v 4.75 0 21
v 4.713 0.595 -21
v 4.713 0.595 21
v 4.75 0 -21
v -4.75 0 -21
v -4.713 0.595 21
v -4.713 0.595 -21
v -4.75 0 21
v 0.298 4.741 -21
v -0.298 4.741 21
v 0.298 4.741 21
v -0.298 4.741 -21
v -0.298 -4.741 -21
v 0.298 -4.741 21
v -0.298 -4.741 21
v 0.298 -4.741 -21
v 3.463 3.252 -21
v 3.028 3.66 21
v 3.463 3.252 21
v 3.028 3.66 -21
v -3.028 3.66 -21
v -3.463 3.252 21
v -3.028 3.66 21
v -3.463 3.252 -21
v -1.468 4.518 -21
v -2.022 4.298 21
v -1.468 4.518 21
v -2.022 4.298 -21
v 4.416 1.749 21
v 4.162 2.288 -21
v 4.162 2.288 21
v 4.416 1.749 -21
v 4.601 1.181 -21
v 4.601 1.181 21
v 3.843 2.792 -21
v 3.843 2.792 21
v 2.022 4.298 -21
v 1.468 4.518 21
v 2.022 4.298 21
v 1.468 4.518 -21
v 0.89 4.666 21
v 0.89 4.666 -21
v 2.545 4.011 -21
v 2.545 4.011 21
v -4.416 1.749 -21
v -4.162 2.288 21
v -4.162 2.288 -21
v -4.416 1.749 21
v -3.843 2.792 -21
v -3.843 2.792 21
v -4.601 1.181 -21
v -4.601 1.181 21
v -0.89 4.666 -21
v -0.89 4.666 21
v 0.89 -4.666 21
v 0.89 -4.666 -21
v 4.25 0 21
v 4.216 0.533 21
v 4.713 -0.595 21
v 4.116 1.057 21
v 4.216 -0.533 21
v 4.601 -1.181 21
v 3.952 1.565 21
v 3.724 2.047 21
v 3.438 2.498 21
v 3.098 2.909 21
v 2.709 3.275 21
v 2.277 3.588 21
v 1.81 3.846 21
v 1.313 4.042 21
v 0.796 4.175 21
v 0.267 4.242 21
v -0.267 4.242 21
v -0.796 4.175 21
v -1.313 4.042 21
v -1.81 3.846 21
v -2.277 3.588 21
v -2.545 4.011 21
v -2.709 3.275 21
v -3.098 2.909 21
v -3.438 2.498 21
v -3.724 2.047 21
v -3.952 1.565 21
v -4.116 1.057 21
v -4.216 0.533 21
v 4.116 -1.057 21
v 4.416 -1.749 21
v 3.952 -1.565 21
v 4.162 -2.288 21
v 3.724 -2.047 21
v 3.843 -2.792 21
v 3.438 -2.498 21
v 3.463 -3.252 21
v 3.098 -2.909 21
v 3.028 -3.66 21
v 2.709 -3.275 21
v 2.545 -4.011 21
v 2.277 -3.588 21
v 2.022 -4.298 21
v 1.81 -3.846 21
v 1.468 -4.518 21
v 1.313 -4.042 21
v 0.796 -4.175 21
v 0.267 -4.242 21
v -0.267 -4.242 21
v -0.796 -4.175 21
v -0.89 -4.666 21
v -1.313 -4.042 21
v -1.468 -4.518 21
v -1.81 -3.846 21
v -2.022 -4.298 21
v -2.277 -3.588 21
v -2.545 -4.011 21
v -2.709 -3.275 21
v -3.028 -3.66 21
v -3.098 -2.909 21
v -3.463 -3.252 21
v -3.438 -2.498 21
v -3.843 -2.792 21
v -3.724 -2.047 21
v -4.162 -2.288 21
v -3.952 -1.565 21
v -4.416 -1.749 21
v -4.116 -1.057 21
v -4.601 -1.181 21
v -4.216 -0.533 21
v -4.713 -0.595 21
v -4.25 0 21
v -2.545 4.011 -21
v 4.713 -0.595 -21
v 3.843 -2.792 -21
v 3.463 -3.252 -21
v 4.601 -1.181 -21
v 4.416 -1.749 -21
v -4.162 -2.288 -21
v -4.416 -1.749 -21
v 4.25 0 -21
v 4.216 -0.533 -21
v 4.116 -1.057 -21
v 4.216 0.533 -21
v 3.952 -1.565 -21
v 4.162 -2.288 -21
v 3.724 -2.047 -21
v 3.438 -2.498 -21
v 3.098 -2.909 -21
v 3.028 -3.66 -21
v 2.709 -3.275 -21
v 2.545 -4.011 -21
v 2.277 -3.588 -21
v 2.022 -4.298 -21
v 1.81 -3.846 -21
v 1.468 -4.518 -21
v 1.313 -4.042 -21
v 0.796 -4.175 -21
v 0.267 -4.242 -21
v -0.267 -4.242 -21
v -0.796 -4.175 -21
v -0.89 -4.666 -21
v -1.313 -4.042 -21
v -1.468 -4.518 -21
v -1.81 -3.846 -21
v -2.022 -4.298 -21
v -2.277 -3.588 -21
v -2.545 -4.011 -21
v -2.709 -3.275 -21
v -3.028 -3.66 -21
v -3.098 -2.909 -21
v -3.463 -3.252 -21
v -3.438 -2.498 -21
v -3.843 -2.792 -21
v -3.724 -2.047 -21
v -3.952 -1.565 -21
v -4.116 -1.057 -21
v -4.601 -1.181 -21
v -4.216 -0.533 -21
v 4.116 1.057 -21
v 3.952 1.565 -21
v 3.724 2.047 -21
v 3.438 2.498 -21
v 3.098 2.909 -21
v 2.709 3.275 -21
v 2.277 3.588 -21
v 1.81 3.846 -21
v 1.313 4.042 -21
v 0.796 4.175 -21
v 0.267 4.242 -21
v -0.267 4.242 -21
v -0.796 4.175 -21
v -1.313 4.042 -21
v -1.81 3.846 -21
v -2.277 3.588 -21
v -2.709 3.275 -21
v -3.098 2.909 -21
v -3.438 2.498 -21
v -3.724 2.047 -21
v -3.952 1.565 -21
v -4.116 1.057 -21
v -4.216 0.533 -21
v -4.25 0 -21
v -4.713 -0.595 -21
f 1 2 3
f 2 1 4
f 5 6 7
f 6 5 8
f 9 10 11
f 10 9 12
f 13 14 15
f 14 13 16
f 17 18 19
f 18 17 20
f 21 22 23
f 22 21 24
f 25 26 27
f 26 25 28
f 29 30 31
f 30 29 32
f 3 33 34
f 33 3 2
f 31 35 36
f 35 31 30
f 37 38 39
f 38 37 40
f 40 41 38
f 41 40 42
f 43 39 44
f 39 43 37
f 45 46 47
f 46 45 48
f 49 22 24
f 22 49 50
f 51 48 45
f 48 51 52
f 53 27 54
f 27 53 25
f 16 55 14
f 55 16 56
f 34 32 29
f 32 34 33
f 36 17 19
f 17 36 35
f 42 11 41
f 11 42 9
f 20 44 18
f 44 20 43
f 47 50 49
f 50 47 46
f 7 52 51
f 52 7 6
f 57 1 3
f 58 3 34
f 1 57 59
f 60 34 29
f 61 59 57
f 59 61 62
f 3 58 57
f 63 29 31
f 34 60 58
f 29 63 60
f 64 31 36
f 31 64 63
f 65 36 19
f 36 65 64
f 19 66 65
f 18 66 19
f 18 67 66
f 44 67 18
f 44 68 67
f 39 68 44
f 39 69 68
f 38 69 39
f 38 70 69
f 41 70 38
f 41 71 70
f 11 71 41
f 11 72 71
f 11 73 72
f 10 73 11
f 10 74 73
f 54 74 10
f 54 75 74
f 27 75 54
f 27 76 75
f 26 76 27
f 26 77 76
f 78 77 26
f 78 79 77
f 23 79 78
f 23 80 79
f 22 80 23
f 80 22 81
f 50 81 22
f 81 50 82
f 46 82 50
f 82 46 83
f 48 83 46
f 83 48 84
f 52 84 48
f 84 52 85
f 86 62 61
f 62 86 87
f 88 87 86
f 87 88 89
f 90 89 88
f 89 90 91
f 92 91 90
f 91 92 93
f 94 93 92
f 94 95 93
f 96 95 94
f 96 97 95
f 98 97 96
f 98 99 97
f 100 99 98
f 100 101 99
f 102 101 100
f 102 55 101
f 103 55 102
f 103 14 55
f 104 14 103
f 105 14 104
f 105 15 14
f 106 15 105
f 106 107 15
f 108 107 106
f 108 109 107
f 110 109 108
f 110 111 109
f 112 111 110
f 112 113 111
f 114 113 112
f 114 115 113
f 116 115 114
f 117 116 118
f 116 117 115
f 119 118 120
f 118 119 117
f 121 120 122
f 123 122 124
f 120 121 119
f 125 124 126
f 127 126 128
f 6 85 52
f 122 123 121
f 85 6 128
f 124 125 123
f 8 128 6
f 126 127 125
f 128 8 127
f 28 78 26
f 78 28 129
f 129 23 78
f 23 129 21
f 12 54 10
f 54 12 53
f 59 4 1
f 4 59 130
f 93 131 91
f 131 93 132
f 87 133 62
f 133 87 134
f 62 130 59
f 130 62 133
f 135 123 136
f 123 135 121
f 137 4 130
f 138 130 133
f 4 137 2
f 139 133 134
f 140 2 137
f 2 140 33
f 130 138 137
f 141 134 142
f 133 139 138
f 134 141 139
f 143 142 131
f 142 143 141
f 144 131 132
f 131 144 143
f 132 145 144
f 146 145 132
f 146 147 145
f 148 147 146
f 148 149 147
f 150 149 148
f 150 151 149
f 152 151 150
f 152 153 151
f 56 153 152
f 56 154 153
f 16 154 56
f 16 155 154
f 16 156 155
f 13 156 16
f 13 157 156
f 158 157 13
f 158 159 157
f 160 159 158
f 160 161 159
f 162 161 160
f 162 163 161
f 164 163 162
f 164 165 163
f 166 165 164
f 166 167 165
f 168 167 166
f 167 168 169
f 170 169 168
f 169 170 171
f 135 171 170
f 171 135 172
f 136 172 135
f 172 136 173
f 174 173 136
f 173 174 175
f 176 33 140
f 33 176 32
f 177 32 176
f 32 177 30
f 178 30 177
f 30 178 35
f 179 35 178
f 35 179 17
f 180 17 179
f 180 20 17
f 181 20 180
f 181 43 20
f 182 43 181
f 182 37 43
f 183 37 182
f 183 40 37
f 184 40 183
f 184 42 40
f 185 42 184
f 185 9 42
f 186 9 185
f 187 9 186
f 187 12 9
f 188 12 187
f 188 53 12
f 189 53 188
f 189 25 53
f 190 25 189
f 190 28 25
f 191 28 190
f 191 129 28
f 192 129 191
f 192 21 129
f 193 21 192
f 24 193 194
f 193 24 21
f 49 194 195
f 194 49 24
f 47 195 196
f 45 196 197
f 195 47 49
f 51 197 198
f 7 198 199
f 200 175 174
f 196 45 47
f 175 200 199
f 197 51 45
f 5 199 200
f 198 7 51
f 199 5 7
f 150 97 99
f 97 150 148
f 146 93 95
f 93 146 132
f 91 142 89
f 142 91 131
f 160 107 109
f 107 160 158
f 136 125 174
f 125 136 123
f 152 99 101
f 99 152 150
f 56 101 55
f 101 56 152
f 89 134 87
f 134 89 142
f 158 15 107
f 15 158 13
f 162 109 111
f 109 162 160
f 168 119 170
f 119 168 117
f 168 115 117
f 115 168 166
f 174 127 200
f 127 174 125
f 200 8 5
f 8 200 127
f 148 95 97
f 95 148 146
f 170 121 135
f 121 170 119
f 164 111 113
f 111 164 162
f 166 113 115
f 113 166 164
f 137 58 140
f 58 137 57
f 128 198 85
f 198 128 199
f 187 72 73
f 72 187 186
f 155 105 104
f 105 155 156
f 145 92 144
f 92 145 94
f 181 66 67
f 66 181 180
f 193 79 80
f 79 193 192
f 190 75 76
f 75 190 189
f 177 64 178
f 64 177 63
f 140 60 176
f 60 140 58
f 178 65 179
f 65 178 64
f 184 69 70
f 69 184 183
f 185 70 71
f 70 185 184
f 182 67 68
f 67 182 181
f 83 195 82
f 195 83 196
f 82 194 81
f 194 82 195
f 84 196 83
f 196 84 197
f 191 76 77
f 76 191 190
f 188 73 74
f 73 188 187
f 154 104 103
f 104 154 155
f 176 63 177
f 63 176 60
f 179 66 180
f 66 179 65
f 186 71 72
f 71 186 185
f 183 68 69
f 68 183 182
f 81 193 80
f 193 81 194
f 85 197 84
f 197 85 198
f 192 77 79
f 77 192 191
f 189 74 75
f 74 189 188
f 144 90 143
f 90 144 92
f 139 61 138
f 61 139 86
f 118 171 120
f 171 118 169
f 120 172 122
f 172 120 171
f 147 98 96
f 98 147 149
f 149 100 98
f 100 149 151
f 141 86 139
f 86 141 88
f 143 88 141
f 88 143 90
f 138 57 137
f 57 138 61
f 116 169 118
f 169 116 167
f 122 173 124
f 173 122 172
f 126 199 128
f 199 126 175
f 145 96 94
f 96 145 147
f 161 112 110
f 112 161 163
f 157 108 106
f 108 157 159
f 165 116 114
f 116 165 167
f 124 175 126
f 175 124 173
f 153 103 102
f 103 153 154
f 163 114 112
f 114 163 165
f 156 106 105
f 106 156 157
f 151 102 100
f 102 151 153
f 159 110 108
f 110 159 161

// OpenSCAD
$fn = 50;


difference() {
	union() {
		translate(v = [0, 0, -21.0000000000]) {
			cylinder(h = 42, r = 4.7500000000);
		}
	}
	union() {
		translate(v = [0, 0, -100.0000000000]) {
			cylinder(h = 200, r = 4.2500000000);
		}
	}
}
